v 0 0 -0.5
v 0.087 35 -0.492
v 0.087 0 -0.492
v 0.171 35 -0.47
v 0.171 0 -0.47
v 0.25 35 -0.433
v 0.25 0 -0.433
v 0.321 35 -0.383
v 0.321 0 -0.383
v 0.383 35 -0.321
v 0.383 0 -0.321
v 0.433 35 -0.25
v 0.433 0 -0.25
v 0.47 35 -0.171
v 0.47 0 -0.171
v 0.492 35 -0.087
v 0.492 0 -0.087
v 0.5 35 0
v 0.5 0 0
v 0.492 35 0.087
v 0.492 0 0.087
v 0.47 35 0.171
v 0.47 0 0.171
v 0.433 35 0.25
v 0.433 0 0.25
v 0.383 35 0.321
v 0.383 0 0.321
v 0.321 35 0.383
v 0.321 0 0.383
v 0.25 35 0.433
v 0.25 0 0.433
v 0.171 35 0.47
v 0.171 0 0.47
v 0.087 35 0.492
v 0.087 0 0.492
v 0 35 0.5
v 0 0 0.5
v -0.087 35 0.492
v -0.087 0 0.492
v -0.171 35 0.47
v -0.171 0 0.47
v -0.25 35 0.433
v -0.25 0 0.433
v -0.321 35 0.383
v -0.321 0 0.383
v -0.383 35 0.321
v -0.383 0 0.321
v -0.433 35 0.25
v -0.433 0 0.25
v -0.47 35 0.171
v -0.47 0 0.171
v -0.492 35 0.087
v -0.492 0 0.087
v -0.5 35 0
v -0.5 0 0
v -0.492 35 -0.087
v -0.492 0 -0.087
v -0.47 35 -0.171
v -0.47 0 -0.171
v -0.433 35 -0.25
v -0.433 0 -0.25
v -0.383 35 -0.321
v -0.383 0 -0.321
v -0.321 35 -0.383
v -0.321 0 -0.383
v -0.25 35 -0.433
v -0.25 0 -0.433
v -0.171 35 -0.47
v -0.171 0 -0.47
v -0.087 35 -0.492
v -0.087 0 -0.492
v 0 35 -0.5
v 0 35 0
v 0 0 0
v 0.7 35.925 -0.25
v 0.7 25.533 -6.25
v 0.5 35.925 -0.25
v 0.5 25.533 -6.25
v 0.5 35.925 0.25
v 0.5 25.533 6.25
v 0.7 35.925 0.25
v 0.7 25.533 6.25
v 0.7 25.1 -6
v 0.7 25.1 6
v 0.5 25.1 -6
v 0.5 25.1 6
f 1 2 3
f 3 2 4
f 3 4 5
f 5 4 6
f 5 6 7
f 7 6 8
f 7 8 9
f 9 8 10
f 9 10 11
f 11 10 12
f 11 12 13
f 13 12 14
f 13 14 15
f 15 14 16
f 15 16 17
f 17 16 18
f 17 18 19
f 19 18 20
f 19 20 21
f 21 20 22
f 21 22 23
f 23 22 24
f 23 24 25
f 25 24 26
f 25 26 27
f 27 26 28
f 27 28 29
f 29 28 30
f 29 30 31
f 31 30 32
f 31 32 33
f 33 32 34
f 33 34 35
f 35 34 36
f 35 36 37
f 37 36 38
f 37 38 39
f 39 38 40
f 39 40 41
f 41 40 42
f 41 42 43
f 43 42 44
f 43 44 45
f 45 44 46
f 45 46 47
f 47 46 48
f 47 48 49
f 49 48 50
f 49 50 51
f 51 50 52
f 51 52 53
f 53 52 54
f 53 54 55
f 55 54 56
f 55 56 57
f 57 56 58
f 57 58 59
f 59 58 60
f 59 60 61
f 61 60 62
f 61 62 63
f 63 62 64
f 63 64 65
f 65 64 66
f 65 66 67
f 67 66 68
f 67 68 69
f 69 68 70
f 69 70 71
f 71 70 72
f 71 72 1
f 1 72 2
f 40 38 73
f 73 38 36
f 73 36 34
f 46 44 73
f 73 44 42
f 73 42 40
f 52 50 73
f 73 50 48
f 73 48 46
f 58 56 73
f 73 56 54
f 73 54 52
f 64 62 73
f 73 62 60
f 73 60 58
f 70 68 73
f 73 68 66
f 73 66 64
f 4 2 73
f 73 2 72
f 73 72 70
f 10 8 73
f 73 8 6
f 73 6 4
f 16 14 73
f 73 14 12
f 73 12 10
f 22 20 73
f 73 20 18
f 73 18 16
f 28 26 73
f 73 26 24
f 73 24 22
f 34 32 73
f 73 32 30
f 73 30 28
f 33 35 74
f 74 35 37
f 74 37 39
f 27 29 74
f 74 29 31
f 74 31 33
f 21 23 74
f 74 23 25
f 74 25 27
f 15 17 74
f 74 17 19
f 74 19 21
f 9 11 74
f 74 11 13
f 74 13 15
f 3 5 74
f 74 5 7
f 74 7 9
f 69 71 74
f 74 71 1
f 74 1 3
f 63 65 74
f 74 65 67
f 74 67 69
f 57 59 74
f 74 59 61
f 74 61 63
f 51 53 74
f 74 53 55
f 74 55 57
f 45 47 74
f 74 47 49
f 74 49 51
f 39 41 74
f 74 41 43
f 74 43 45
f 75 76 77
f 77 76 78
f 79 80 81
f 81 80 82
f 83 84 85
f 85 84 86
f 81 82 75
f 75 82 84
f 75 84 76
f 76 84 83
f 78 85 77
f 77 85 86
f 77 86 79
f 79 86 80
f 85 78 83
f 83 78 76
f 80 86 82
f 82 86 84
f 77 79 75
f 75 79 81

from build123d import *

# Parameters (mm, degrees)
SKETCH1_R            = 0.5
BOSS_EXTRUDE1_DEPTH  = 35
BOSS_EXTRUDE2_DEPTH  = 0.2
CHAMFER1_SIZE        = 0.5
CHAMFER1_EDGE_2_SIZE = 0.5
CHAMFER2_SIZE        = 0.5


with BuildPart() as part:
    # Sketch1 → Boss-Extrude1 (new body)
    with BuildSketch(Plane(origin=(0, 0, 0), x_dir=(1, 0, 0), z_dir=(0, 1, 0))):
        with Locations(Location((0, 0, 0), (0, 0, 270))):
            Circle(SKETCH1_R)
    extrude(amount=BOSS_EXTRUDE1_DEPTH)


with BuildPart() as body_2:
    # Sketch2 → Boss-Extrude2 (new body)
    with BuildSketch(Plane(origin=(0.5, 0, 0), x_dir=(0, 0, -1), z_dir=(1, 0, 0))):
        Polygon((6.5, 25.100052456), (0, 36.358382705), (-6.5, 25.100052456), align=None)
    extrude(amount=BOSS_EXTRUDE2_DEPTH)

    # Chamfer1
    chamfer1_edges = [body_2.edges().sort_by_distance(p)[0] for p in [
        (0.6, 25.100052456, -6.5),
    ]]
    chamfer(chamfer1_edges, length=CHAMFER1_SIZE)

    # Chamfer1 edge 2
    chamfer1_edge_2_edges = [body_2.edges().sort_by_distance(p)[0] for p in [
        (0.6, 25.100052456, 6.5),
    ]]
    chamfer(chamfer1_edge_2_edges, length=CHAMFER1_EDGE_2_SIZE)

    # Chamfer2
    chamfer2_edges = [body_2.edges().sort_by_distance(p)[0] for p in [
        (0.6, 36.358382705, 0),
    ]]
    chamfer(chamfer2_edges, length=CHAMFER2_SIZE)


solid = Compound([part.part, body_2.part])
